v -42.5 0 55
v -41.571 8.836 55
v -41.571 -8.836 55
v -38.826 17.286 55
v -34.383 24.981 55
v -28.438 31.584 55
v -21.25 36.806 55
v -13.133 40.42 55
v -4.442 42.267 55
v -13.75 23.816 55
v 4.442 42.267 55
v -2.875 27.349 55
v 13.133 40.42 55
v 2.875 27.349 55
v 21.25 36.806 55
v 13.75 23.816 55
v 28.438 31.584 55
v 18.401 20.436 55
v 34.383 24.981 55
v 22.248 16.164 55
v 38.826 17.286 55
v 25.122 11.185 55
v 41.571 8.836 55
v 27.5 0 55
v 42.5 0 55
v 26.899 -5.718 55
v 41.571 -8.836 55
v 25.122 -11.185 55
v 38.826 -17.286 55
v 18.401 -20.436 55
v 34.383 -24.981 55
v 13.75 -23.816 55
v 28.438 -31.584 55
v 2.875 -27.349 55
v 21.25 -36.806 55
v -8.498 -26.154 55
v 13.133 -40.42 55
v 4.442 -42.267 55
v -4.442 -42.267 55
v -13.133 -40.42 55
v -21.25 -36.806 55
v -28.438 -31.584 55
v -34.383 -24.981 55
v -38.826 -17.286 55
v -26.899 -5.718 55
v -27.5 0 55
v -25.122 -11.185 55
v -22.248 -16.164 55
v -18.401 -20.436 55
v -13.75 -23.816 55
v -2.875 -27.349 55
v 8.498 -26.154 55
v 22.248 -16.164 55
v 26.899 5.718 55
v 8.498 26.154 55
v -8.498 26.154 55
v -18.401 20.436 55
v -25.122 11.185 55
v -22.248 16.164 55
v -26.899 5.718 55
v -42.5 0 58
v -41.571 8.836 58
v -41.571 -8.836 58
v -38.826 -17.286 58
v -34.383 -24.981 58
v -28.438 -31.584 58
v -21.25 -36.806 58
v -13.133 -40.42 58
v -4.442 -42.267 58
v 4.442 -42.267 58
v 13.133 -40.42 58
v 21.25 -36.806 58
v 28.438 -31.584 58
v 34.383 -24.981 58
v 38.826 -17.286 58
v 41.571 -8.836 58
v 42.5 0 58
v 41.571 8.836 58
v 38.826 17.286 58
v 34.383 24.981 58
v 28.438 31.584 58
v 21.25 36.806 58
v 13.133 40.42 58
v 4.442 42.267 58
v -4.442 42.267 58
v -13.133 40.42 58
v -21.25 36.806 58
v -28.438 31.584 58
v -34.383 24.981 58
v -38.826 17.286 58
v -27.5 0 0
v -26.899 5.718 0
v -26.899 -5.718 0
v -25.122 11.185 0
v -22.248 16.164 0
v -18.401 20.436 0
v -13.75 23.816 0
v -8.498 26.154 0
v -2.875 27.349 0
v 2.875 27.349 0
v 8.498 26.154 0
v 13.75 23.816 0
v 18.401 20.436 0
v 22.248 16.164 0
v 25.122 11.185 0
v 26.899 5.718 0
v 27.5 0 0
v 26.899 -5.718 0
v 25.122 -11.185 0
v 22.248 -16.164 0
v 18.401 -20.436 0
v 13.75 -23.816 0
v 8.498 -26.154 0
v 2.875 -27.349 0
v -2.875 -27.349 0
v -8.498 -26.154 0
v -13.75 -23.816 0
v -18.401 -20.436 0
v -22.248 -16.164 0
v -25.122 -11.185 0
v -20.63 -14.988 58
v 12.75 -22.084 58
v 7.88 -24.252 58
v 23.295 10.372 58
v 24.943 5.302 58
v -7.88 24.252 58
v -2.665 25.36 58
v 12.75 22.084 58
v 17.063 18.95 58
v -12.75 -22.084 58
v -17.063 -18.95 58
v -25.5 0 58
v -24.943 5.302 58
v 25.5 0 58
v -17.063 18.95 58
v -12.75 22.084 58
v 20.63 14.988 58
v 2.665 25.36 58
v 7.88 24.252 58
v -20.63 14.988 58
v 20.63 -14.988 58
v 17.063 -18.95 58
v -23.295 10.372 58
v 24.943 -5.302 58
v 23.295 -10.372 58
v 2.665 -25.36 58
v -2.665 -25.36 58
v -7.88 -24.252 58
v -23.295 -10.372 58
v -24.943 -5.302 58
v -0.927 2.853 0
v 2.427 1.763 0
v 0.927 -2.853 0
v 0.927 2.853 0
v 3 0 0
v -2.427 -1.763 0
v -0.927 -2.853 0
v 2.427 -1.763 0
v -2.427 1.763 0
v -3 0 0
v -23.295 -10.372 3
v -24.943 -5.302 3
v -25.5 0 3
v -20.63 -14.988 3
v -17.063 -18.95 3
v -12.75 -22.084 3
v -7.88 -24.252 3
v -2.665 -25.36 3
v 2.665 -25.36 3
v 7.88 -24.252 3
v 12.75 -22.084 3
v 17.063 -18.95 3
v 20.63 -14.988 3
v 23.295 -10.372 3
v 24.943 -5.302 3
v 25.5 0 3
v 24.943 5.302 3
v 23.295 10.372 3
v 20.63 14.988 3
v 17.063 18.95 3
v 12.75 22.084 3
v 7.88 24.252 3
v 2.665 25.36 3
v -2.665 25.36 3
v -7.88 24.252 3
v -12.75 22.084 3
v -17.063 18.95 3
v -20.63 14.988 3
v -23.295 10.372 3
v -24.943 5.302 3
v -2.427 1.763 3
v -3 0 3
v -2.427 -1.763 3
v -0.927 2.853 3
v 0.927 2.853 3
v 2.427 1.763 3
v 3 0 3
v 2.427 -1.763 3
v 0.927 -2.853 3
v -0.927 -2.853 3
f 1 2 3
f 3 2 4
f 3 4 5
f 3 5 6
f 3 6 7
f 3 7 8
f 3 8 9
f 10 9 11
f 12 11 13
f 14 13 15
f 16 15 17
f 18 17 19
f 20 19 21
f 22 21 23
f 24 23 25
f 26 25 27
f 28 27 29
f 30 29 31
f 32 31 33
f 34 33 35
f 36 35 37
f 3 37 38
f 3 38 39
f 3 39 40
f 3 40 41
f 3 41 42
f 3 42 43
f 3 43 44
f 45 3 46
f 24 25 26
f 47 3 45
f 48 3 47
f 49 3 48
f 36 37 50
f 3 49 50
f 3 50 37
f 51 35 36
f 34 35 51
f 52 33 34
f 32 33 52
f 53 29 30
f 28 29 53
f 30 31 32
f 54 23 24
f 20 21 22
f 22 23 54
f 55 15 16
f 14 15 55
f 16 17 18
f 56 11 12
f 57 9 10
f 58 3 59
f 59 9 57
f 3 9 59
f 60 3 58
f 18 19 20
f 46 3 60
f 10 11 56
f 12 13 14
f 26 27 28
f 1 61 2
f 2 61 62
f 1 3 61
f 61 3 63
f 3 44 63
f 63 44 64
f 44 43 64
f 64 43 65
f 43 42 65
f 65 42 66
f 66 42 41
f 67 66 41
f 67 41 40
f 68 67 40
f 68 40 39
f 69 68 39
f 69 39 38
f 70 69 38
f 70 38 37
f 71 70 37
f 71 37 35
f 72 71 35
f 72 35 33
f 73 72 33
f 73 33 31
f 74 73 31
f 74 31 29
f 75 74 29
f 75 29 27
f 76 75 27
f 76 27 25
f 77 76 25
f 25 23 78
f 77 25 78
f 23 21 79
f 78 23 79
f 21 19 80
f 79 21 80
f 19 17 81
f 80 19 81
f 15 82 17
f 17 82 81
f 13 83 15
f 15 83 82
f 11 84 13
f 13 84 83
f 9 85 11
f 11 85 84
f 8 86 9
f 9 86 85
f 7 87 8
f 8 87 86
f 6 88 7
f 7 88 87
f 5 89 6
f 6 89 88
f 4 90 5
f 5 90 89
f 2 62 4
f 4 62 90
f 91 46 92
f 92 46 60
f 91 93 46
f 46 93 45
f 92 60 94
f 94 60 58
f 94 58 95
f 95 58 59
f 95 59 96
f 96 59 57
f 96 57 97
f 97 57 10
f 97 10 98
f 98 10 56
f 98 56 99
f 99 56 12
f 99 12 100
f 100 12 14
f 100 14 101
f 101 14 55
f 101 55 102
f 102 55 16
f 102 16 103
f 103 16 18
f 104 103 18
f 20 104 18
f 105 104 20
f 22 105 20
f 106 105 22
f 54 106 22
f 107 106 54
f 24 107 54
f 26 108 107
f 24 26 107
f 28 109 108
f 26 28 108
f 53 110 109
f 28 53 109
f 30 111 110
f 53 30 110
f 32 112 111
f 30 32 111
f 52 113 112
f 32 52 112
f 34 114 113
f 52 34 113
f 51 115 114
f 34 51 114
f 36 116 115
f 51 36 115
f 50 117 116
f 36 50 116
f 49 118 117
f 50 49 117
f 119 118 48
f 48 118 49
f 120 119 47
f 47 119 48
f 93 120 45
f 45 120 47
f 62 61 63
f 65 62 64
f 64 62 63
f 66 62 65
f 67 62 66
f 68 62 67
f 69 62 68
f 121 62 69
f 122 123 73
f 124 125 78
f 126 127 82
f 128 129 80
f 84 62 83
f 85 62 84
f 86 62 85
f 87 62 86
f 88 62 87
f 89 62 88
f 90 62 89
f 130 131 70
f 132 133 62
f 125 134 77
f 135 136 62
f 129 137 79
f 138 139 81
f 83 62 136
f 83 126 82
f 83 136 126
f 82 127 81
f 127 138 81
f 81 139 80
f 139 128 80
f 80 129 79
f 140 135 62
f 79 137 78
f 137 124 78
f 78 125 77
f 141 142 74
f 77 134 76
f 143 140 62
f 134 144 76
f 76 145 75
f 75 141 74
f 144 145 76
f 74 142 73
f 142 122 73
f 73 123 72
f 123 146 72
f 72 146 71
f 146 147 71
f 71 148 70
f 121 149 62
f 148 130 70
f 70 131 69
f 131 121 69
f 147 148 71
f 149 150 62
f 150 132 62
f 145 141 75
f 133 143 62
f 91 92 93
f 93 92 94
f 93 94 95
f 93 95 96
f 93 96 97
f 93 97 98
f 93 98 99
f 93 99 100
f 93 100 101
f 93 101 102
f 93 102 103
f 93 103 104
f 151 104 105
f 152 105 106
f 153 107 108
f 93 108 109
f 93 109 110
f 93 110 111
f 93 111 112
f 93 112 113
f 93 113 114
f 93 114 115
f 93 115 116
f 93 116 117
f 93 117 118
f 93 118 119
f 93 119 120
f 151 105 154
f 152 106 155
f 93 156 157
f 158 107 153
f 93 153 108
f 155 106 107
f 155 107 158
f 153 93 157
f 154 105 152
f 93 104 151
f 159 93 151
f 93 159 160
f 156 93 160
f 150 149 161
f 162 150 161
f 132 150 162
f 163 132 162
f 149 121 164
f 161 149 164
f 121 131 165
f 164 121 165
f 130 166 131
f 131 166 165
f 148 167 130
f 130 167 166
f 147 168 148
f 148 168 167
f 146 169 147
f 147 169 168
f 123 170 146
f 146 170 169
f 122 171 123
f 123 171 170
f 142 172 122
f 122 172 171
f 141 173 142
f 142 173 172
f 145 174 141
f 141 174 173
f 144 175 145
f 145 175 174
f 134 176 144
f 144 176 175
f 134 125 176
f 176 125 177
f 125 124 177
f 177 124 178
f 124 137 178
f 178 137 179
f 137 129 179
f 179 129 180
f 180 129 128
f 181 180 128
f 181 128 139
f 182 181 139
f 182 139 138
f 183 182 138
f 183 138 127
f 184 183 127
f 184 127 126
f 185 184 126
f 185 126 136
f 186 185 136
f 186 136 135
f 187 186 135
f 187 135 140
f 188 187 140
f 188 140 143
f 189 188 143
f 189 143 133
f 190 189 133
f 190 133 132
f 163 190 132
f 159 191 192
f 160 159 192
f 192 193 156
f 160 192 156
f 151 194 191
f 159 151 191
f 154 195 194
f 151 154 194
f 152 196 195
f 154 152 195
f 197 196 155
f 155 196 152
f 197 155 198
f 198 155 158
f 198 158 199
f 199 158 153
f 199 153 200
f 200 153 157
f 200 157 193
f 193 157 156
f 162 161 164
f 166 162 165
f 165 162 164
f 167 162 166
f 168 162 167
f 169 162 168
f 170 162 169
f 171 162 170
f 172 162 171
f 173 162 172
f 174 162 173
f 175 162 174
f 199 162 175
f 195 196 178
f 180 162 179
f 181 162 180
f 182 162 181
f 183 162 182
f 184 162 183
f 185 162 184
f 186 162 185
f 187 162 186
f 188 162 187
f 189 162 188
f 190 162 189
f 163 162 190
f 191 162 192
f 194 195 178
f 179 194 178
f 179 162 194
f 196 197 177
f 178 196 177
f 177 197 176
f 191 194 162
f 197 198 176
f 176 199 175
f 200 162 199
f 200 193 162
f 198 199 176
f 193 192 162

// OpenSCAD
//globals


//sip_ indicates value for the basket
sip_radius = 27.5;
sip_height = 55;
sip_lip_radius = 42.5;
sip_wick_radius = 3;

sip_wall_thickness = 2;
sip_floor_thickness = 3;
sip_lip_thickness = sip_floor_thickness;


module yogurtCup_SIP() {

	difference(){

		//add here
		union() {
			cylinder(r=sip_radius, h=sip_height+sip_lip_thickness);
			translate([0,0,sip_height]) {
				cylinder(r=sip_lip_radius, h=sip_lip_thickness);	
			}		
		}
		
		//take away here
		union() {
			translate([0,0,sip_floor_thickness]) {
				cylinder(r=sip_radius-sip_wall_thickness, h=sip_height+sip_lip_thickness);
			}
			translate([0,0,-sip_floor_thickness]) {
				cylinder(r=sip_wick_radius, h=sip_floor_thickness*3);
			}

		}
	}

}




yogurtCup_SIP();
